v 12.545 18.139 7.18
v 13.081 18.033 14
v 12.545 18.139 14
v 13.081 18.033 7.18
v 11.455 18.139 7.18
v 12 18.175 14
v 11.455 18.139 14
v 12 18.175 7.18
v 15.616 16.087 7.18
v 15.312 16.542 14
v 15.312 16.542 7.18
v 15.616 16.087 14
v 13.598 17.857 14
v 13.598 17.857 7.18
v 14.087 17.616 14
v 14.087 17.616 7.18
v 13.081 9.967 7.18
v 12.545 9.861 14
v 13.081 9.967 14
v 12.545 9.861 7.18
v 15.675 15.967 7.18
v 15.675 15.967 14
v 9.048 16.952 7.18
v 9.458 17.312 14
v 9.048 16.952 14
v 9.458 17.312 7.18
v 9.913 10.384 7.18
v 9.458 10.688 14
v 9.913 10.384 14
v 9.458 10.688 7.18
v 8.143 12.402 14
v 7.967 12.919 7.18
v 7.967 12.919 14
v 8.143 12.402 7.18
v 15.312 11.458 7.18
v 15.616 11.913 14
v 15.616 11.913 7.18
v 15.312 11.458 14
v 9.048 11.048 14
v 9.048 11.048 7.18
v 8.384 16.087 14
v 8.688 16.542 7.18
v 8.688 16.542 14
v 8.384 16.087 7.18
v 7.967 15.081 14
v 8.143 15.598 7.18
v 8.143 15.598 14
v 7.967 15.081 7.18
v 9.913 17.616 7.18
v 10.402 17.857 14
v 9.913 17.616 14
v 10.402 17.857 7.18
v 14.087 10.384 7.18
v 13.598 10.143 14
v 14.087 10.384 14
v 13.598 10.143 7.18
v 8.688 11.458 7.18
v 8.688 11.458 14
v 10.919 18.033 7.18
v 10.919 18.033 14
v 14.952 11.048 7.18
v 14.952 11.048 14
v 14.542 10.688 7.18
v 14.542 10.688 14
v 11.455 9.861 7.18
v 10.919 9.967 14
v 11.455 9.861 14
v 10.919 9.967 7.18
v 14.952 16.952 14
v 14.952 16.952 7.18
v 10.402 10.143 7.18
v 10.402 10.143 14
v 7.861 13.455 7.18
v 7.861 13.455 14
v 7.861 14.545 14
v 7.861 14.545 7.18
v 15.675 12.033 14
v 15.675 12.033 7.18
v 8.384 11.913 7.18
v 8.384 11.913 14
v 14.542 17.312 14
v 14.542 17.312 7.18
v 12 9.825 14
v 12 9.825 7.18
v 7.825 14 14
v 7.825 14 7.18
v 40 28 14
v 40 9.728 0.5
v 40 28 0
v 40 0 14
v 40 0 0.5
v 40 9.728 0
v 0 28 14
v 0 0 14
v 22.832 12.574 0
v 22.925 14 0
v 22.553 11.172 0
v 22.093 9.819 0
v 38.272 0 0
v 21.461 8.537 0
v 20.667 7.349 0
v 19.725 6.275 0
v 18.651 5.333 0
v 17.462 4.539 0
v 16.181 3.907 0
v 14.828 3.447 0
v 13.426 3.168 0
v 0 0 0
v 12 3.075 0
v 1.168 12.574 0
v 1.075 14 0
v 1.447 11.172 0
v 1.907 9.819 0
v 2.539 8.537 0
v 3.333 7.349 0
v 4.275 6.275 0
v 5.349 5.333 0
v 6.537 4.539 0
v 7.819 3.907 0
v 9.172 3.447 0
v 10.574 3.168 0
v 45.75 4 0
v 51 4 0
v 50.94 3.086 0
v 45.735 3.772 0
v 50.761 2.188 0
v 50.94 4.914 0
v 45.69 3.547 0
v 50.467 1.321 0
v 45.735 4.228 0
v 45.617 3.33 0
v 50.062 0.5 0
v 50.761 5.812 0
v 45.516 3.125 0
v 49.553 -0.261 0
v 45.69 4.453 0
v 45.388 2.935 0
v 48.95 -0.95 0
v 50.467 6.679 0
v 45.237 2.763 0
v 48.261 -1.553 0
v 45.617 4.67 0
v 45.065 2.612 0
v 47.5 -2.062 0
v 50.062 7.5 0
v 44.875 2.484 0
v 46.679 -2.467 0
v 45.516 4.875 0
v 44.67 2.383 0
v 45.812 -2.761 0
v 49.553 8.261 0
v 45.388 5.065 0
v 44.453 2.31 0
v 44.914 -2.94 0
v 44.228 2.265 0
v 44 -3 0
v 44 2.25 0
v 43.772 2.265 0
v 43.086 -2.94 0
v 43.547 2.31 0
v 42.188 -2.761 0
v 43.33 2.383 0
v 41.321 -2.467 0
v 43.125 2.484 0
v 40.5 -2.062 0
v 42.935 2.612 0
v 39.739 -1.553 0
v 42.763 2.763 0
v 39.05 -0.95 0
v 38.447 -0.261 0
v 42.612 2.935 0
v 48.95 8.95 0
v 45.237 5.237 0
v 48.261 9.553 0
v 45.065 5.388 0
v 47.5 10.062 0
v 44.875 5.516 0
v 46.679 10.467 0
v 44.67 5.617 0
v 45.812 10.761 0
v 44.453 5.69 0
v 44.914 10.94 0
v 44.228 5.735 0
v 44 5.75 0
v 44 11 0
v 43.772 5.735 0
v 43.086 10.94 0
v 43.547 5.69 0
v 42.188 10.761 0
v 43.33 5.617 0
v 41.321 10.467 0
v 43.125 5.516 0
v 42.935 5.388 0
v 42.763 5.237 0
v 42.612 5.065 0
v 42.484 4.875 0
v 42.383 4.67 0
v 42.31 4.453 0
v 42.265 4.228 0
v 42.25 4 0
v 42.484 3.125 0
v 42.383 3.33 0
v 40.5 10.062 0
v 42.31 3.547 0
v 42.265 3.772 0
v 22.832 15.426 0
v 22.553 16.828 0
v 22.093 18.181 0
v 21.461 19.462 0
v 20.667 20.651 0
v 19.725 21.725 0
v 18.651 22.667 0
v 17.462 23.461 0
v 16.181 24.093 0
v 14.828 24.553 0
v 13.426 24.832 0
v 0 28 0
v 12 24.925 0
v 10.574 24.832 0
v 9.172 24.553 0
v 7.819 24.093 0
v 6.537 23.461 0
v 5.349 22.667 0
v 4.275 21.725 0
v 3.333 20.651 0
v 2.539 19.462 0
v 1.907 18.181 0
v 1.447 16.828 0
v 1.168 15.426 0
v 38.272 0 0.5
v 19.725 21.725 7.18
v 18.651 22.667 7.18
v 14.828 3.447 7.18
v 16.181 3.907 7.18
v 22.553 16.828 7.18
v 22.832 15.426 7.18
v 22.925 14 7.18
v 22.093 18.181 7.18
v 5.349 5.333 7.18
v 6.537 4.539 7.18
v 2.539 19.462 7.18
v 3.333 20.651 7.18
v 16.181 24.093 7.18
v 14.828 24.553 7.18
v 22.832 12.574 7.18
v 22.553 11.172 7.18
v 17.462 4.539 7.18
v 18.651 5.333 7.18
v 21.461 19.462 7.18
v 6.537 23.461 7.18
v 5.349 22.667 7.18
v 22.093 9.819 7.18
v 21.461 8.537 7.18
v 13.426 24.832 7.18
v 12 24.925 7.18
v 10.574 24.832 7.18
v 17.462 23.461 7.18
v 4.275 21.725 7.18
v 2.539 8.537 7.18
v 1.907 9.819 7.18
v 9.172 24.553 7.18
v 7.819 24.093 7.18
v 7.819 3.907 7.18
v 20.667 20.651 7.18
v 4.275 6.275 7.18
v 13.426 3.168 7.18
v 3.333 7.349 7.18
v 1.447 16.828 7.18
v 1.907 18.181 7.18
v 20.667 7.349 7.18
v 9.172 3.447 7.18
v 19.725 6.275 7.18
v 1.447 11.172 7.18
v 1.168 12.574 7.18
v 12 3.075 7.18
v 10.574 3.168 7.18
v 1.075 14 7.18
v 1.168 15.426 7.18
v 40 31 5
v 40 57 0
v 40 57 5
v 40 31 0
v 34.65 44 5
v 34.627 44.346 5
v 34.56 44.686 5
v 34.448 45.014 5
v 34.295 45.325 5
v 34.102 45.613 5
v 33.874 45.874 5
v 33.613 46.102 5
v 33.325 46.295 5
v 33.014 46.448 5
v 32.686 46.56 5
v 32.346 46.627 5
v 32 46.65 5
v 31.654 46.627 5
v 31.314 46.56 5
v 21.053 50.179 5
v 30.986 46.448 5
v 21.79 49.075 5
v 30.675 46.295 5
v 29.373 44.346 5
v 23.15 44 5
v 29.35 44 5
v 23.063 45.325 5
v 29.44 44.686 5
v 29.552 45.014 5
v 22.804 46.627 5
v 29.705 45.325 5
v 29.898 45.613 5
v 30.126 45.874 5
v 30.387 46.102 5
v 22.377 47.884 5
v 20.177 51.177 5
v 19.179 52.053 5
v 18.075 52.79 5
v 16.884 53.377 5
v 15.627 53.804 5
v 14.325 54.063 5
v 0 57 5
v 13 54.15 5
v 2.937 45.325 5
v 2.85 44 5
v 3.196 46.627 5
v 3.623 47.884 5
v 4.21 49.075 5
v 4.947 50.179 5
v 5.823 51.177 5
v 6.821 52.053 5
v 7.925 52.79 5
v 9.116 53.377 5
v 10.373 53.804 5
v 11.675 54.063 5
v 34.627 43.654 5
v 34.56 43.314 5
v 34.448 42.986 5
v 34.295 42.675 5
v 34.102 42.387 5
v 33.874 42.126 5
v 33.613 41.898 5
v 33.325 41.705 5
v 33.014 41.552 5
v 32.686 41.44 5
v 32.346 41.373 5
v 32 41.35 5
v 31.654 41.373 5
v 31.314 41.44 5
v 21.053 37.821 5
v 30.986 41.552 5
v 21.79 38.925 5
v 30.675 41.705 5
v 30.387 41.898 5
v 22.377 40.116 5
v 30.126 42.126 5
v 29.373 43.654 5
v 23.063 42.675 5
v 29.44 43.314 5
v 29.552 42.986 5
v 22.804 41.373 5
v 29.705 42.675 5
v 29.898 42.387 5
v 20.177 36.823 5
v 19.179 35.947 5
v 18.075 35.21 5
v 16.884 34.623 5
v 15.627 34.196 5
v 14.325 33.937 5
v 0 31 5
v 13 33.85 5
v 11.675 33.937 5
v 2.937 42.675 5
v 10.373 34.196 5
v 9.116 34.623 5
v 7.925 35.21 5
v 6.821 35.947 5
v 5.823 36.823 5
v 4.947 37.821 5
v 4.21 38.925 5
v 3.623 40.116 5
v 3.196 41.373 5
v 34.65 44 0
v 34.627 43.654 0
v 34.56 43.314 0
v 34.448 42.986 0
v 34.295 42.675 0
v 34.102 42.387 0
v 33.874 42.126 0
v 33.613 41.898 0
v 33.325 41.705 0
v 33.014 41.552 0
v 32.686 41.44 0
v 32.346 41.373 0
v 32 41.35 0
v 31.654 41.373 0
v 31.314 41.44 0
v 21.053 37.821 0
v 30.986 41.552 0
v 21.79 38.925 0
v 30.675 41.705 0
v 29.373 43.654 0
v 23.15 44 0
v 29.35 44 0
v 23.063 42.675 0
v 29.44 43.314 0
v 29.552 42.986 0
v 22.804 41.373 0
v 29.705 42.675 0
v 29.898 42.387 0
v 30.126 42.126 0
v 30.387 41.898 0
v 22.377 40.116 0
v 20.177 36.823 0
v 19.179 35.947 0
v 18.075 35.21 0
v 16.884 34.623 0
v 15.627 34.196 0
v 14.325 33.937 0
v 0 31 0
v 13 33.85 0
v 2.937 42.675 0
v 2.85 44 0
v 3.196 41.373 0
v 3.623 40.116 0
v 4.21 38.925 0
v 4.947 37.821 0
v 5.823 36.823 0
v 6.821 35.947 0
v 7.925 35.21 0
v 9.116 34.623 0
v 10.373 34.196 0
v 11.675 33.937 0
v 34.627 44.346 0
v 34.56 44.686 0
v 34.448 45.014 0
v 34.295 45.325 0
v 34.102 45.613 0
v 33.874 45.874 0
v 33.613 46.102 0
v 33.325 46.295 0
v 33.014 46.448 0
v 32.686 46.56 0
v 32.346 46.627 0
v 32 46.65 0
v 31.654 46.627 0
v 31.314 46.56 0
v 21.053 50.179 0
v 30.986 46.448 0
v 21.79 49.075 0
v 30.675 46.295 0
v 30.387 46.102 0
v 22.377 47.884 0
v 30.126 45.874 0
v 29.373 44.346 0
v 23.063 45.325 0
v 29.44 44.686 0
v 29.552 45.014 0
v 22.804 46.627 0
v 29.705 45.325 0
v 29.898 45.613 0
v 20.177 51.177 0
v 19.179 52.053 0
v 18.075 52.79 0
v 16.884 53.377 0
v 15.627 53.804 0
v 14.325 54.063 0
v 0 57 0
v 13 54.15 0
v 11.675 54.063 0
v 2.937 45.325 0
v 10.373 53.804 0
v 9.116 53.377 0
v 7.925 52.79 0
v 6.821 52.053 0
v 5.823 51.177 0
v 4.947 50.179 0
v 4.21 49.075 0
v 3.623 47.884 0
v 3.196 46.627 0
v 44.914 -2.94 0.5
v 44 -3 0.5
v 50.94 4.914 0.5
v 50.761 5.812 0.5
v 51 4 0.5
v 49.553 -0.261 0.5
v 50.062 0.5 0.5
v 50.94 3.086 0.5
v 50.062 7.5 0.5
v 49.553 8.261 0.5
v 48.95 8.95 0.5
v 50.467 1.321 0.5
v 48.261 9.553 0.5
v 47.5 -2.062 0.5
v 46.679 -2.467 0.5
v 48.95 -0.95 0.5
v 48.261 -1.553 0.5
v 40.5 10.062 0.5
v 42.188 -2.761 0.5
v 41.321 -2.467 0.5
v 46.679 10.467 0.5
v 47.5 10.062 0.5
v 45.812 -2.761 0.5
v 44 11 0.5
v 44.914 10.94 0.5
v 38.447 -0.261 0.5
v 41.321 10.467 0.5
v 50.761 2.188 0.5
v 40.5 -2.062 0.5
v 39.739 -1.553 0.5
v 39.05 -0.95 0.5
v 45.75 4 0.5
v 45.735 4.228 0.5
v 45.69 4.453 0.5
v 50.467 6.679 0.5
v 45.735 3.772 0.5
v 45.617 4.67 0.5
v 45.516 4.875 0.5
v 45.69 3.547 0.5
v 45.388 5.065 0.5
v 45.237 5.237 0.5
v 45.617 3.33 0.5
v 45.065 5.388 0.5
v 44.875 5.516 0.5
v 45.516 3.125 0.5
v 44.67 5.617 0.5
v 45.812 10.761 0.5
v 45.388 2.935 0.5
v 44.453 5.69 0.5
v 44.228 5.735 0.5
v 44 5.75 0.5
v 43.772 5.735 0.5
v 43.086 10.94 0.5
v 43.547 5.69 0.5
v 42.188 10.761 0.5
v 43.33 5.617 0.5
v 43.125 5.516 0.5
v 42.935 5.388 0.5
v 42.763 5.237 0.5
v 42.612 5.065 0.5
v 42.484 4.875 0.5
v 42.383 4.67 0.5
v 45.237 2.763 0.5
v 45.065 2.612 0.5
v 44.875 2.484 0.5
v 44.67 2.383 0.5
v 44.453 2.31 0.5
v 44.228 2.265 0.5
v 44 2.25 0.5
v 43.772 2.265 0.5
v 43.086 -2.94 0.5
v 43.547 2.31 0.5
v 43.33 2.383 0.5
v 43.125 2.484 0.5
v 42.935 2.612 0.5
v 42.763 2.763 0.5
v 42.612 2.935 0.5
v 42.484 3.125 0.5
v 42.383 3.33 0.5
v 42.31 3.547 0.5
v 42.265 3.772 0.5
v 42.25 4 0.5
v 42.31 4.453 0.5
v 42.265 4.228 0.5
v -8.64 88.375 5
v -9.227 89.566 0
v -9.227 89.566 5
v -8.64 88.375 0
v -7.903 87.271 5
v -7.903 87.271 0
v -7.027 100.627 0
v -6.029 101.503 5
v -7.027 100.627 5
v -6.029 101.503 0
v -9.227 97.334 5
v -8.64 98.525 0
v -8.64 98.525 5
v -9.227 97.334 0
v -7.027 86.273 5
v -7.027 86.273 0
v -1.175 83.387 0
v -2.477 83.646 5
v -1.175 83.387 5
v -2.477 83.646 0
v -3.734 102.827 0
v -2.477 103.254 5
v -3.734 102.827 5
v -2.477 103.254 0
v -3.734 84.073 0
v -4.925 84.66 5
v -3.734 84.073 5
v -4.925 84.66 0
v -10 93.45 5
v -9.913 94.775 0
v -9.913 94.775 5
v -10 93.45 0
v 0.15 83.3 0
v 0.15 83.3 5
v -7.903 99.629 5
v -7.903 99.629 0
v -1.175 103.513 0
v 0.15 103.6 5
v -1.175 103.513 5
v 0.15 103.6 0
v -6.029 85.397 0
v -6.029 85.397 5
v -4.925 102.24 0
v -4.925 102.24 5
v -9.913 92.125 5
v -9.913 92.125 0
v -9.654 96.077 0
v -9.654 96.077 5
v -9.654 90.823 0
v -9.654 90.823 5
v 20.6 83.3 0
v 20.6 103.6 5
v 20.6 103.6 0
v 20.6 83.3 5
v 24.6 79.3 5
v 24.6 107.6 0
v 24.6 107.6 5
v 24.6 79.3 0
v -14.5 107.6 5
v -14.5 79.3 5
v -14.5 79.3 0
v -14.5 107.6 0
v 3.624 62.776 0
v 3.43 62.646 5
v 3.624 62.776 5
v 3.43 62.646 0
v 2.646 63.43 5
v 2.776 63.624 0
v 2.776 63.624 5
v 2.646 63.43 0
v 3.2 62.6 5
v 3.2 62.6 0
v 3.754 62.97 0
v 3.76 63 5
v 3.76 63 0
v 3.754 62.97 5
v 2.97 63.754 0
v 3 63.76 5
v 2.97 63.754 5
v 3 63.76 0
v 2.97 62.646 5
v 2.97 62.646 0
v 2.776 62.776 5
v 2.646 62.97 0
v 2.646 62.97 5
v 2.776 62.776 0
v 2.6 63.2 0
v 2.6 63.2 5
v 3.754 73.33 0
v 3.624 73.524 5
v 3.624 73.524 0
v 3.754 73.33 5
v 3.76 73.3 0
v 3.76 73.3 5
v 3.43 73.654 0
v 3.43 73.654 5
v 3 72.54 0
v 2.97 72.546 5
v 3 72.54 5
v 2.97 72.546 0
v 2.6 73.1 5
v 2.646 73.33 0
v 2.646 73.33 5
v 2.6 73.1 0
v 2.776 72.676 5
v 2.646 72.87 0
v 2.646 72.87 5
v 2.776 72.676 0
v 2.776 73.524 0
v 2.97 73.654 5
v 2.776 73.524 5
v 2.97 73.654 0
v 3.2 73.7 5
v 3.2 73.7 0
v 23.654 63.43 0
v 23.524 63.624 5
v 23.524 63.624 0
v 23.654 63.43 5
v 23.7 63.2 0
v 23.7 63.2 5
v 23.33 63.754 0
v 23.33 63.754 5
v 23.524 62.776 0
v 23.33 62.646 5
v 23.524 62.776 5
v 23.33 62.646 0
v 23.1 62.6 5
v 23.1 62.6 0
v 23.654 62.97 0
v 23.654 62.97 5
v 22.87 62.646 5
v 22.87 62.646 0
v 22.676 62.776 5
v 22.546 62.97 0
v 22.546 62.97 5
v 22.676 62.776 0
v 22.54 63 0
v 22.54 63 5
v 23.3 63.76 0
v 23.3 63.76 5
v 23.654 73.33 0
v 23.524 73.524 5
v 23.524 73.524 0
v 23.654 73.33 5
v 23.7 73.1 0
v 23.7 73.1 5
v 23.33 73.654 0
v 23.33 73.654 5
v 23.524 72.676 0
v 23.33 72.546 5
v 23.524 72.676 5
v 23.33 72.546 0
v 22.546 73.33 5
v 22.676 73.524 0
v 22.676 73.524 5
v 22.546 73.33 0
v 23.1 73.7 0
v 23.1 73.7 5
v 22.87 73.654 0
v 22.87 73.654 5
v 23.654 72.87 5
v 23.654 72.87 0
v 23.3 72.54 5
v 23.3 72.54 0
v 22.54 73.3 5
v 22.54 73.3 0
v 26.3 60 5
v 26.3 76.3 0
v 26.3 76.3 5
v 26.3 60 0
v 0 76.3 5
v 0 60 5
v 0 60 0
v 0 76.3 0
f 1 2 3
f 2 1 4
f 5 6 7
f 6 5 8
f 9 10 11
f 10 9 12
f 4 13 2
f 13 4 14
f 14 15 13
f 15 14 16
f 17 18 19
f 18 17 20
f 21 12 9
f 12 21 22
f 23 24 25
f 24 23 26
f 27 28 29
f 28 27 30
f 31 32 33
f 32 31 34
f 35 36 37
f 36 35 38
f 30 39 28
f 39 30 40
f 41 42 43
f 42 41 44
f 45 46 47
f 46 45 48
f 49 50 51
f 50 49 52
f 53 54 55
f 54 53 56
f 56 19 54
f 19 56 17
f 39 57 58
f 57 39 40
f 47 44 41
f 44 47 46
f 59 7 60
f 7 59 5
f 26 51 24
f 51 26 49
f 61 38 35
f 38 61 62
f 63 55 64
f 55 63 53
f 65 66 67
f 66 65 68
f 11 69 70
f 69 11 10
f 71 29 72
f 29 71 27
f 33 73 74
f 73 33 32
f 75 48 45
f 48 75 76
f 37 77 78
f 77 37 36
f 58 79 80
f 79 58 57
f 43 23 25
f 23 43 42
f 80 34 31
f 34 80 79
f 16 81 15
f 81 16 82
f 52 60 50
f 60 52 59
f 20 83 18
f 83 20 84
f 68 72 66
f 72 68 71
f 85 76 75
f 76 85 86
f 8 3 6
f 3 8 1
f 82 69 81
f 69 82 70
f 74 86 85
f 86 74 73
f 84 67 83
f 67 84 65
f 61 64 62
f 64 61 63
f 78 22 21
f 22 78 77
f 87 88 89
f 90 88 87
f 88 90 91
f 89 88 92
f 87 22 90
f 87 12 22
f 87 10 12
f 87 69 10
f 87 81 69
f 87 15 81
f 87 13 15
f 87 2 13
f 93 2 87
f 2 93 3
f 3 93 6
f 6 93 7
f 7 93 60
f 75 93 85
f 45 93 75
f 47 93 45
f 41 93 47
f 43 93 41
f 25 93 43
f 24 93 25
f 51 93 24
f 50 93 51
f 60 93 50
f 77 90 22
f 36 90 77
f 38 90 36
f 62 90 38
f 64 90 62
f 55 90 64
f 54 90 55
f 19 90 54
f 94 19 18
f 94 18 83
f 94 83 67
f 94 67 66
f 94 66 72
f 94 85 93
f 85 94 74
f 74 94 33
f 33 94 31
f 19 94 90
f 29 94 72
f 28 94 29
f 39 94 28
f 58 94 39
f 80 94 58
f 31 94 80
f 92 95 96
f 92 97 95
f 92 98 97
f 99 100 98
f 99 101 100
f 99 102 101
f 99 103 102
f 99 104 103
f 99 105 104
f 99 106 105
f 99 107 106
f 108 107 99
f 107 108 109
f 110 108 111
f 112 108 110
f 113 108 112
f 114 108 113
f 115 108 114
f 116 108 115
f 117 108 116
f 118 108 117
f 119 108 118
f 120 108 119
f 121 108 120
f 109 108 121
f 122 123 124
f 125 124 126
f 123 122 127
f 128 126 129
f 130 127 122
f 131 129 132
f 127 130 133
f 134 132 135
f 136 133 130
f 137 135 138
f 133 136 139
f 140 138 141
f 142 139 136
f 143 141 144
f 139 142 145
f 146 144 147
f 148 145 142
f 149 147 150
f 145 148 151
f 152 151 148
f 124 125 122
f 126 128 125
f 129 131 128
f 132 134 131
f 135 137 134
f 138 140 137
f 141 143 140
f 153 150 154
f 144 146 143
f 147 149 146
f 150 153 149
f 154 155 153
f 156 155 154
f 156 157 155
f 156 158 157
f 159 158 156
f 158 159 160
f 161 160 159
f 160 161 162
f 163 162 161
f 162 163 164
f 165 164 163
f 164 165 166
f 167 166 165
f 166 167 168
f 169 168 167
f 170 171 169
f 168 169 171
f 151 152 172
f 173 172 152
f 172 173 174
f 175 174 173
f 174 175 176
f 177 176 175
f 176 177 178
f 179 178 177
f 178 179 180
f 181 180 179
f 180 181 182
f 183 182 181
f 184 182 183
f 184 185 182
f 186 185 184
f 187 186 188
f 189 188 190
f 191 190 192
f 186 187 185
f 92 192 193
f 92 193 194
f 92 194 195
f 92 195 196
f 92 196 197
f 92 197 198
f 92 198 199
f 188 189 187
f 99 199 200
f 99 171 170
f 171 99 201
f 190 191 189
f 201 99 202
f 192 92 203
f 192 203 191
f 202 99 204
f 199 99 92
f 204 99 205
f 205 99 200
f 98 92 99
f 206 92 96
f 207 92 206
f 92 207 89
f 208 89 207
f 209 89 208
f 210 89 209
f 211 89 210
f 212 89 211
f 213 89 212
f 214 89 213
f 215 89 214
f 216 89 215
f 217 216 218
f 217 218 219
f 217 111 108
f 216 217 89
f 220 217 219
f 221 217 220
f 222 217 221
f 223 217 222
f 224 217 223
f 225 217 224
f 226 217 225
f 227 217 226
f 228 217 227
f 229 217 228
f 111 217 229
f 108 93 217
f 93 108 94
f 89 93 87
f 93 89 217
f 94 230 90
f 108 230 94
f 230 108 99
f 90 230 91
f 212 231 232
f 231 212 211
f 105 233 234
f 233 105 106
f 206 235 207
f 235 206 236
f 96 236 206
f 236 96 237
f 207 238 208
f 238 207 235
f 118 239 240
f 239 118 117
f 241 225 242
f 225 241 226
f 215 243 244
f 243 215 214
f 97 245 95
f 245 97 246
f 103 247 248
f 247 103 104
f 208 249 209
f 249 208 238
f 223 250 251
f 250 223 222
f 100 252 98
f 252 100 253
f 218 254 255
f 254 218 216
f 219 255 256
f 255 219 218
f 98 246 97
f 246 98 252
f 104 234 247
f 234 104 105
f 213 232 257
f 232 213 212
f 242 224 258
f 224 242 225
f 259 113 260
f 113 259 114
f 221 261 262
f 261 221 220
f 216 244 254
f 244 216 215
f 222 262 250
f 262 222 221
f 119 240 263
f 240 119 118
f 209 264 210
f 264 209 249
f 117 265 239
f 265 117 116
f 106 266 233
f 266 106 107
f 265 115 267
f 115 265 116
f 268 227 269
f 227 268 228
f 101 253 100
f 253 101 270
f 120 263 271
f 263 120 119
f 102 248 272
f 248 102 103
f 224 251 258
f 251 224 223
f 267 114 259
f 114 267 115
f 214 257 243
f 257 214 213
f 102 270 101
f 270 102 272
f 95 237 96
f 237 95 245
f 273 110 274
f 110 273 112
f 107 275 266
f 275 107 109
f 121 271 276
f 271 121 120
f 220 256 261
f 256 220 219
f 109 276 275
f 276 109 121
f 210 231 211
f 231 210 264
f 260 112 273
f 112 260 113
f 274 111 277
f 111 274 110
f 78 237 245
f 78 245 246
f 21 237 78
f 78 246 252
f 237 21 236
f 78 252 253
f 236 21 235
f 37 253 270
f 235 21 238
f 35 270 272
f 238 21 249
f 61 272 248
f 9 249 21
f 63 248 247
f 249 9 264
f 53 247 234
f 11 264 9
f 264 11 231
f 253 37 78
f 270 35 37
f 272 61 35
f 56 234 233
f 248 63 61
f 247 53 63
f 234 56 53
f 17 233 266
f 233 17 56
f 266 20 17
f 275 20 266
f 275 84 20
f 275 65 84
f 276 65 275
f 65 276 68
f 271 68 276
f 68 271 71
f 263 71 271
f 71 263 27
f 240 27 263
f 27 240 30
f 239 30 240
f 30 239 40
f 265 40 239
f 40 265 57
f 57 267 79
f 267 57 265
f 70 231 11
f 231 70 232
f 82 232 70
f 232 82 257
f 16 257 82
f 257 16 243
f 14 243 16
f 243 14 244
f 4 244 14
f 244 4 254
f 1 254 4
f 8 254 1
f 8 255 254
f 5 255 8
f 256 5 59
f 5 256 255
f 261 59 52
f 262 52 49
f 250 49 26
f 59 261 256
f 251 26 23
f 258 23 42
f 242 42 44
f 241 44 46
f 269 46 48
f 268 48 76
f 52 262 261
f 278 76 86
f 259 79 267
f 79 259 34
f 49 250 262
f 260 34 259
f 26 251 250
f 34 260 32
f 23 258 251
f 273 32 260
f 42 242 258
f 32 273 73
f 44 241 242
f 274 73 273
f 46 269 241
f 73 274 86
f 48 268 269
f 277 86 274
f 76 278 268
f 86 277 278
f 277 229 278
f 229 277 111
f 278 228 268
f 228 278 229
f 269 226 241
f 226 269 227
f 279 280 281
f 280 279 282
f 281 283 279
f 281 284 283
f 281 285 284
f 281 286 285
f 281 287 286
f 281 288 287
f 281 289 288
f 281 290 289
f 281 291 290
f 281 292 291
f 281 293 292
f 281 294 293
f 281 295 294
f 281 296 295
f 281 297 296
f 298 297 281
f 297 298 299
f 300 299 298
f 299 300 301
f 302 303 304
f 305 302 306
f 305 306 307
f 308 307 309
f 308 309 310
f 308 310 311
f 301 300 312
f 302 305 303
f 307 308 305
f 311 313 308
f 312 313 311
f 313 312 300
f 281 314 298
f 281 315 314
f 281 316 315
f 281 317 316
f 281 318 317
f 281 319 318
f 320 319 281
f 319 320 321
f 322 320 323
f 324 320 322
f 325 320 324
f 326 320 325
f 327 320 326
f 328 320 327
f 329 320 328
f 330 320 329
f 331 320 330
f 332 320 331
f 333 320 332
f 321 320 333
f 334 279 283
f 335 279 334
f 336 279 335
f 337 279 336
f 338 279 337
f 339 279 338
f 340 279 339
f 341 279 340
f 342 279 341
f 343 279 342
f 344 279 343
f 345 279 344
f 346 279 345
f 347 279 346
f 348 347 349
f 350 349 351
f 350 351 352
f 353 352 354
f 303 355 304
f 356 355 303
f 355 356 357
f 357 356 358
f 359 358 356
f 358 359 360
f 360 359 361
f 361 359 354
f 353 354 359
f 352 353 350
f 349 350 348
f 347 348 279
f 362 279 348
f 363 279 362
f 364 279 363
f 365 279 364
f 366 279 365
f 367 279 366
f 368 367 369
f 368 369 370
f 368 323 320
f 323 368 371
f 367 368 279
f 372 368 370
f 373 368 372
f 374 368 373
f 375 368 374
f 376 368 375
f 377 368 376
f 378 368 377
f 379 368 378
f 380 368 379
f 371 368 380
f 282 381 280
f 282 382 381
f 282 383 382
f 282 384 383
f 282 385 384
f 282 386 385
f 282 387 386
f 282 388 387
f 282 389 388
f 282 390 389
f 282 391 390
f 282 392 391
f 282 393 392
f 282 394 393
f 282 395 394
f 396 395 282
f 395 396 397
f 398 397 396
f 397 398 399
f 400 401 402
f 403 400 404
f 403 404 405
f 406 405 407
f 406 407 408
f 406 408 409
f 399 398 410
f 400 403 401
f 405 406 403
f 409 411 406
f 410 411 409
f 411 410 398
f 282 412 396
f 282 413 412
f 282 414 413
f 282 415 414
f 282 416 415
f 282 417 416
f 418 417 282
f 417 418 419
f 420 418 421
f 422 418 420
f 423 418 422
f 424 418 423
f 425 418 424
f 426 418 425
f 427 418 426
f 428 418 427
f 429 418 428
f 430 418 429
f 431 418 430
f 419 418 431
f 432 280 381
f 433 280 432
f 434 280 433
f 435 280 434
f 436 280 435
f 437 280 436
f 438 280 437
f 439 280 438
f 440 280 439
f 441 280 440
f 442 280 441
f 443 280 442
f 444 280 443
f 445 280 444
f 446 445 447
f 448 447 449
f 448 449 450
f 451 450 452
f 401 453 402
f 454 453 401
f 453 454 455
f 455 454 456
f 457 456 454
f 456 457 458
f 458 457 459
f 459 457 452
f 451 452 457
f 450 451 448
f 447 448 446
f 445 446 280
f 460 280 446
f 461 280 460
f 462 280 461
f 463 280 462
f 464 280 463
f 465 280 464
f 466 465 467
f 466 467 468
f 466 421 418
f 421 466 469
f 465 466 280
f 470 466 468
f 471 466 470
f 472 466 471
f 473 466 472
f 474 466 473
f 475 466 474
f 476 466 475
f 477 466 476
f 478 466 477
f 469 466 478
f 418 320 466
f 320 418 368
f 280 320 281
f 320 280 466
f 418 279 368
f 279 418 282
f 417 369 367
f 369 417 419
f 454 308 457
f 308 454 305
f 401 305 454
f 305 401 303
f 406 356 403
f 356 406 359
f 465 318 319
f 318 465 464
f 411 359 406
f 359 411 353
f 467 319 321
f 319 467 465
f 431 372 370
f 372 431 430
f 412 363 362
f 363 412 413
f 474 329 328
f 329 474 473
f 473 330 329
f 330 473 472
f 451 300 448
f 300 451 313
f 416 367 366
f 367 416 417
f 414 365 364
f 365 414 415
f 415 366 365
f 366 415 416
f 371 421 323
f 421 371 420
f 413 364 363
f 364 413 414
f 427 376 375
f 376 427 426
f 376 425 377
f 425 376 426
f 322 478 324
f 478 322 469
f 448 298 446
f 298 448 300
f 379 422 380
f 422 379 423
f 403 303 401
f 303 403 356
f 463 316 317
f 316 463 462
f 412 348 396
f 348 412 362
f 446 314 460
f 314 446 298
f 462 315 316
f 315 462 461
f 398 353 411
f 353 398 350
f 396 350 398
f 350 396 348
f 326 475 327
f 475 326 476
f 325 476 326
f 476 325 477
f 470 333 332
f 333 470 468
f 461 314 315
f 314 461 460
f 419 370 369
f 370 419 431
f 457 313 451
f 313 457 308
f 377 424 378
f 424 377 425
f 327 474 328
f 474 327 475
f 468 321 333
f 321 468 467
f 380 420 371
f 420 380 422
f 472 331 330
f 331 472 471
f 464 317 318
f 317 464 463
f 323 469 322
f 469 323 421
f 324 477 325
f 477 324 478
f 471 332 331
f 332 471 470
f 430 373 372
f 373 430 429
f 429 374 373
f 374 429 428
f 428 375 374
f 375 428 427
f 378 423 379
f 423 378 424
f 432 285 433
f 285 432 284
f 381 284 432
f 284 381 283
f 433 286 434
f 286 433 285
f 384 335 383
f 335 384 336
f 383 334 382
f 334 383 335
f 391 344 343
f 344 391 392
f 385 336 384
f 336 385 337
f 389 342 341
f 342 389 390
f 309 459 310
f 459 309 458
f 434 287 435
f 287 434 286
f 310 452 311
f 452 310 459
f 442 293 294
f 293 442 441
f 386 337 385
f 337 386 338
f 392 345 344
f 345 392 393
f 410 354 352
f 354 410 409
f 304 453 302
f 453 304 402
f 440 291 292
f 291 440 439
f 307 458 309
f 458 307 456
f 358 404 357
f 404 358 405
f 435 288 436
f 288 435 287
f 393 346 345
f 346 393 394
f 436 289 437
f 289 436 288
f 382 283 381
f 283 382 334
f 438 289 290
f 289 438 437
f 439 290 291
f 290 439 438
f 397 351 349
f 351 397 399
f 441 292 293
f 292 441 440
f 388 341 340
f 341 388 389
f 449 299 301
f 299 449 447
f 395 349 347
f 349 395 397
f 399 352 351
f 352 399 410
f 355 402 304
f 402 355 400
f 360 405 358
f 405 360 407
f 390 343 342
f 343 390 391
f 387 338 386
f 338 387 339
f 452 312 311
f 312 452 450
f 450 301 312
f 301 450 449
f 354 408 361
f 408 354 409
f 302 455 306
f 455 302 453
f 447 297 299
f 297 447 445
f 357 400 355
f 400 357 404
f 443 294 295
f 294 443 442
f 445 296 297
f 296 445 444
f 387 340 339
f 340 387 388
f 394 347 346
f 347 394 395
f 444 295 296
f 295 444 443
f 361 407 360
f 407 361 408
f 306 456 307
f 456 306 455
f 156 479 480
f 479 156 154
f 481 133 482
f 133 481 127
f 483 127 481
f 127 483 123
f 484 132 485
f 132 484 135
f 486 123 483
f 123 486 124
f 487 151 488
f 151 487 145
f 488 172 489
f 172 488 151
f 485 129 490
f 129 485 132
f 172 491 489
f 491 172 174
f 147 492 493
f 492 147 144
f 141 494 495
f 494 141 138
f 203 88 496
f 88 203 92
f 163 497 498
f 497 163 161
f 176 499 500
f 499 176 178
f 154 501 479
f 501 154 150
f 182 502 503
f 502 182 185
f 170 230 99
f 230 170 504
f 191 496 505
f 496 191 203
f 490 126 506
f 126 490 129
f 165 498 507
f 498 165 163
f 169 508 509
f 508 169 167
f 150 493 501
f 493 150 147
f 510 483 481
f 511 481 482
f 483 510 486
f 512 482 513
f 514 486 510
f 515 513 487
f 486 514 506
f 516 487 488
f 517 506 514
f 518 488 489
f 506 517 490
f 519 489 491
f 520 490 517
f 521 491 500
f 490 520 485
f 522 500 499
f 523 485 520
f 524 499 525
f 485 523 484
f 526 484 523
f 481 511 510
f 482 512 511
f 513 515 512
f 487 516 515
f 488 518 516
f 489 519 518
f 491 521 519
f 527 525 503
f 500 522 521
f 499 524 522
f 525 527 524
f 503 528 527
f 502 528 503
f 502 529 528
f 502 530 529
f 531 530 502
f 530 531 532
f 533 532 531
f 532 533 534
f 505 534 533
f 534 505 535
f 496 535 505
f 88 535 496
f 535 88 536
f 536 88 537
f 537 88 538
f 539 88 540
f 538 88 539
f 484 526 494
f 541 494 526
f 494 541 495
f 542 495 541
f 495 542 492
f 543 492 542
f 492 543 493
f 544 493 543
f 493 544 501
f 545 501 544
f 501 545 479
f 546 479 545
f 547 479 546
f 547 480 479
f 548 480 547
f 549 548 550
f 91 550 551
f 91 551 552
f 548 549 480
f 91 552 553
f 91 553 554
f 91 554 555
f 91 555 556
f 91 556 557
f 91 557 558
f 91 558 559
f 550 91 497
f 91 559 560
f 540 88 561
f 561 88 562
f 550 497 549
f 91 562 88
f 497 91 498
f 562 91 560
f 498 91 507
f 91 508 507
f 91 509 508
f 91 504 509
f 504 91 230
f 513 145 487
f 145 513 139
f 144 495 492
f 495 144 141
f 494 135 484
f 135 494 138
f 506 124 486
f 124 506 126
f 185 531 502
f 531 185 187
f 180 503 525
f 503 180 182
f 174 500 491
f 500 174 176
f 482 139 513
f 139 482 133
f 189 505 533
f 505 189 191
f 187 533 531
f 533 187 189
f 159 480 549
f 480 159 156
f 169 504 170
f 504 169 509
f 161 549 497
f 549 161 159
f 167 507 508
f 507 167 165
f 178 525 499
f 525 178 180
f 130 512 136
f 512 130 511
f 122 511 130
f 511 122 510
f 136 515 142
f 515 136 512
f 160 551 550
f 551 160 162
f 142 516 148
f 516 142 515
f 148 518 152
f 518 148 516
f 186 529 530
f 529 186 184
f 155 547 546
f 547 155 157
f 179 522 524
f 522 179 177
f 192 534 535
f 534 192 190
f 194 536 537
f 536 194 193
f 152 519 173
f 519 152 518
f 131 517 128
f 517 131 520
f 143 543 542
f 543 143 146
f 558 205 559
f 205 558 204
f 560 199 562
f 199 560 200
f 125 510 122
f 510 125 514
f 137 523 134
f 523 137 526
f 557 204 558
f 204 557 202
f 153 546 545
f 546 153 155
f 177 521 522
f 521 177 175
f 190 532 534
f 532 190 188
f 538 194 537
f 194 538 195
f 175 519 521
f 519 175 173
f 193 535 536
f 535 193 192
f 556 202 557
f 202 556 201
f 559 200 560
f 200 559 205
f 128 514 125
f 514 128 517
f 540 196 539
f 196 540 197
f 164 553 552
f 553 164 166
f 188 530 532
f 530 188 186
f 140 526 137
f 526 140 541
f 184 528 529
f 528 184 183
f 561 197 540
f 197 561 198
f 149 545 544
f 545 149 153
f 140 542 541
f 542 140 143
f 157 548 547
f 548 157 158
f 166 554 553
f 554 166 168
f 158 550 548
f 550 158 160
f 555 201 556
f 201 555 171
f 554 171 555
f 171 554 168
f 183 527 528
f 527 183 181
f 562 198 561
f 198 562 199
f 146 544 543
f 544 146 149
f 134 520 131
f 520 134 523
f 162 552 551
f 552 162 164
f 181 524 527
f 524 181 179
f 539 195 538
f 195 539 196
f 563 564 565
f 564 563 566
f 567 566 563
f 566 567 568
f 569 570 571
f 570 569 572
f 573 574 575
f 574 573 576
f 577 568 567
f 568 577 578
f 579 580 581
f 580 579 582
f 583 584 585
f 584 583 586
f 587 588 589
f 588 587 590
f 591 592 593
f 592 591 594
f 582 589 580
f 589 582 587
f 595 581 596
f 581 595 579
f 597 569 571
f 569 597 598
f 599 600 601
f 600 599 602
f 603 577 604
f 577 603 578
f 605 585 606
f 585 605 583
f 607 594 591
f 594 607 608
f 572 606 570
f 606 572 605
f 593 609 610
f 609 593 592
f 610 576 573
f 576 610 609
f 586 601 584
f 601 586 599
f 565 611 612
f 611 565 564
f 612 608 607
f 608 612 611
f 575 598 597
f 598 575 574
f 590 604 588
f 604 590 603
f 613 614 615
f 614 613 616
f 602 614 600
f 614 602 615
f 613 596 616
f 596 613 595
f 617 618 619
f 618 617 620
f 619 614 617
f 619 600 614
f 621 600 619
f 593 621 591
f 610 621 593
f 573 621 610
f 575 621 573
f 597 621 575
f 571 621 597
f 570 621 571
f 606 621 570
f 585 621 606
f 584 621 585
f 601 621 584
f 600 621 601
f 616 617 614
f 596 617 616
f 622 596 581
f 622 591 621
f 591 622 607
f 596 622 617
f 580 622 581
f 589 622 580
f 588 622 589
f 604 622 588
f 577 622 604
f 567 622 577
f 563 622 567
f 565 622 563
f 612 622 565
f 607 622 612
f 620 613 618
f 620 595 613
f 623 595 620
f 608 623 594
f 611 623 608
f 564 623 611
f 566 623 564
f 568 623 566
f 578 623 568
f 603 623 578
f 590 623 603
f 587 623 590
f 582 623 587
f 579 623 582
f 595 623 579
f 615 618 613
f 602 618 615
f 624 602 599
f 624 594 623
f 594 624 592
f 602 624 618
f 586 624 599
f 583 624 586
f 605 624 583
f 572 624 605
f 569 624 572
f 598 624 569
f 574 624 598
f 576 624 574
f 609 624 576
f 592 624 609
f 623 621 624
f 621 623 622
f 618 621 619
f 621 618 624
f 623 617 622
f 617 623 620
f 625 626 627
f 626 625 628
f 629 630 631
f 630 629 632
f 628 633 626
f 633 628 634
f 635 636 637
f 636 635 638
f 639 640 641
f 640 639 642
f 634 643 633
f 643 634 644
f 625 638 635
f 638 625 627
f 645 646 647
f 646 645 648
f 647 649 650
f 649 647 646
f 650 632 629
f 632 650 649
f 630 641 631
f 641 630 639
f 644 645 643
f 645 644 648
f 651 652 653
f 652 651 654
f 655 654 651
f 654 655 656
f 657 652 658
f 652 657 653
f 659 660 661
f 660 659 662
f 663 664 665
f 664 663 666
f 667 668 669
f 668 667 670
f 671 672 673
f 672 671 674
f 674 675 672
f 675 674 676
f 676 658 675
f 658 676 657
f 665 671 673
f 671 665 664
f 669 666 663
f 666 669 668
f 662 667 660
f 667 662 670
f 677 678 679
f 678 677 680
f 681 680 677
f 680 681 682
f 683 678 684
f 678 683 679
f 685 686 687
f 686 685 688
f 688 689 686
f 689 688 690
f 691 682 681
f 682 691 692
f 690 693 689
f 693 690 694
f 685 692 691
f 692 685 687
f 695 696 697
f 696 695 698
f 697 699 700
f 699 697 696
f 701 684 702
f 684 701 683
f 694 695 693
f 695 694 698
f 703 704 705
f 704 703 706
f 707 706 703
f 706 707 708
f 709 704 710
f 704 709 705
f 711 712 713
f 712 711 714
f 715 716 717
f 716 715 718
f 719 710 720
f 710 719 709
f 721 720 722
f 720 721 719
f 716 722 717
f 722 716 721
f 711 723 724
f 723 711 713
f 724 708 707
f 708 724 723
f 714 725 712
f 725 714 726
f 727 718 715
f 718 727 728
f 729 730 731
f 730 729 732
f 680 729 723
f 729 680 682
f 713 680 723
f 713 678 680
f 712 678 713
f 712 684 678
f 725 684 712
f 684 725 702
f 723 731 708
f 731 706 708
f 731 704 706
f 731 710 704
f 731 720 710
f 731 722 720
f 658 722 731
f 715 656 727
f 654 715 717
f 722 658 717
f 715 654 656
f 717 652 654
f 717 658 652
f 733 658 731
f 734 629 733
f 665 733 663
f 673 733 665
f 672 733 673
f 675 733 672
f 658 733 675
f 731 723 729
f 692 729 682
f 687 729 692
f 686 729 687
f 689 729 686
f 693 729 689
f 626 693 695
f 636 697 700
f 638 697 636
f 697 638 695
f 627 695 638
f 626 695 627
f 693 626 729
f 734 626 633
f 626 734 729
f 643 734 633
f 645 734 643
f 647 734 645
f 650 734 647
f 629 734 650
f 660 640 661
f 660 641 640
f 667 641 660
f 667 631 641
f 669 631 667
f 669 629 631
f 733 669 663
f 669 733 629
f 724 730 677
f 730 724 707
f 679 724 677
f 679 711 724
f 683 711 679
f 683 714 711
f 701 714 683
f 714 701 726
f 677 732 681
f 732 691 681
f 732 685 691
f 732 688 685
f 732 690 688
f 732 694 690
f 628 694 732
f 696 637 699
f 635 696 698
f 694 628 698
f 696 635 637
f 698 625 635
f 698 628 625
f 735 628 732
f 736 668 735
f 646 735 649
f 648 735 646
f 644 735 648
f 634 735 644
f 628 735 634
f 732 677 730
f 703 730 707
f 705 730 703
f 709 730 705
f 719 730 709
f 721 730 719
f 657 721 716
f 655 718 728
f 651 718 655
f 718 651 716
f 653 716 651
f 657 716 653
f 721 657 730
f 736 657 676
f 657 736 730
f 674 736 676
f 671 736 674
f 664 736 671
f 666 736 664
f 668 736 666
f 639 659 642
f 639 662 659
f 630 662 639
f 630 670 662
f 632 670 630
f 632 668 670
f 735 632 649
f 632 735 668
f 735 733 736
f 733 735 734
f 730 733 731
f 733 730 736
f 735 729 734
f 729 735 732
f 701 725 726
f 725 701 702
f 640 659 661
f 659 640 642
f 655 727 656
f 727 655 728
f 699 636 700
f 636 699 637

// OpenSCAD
// Gen-CT — fit coupon: O20/O5 THROUGH pockets at carrier thickness (test on a steel offcut), 608 seat,
// D-flat bore, gap shim, and one bobbin-bay slice (bobbin footprint + bay_clear) to test former fit.
include <parameters.scad>;
$fn = 48;
// D-flat keyed bore: flat faces +X (angle 0 = magnet pocket 0 = index notch)
module dflat_bore(h) {
    intersection() {
        cylinder(d=shaft_bore, h=h);
        translate([-shaft_bore, -shaft_bore, 0]) cube([shaft_bore + dflat_x, 2*shaft_bore, h]);
    }
}
module sector_2d(r_in, r_out, ang) {
    polygon([
        for (a = [-ang/2 : ang/24 : ang/2]) [r_in*cos(a), r_in*sin(a)],
        for (a = [ang/2 : -ang/24 : -ang/2]) [r_out*cos(a), r_out*sin(a)]
    ]);
}
module footprint_2d() { offset(r=wall) sector_2d(coil_id_r, coil_od_r, span_deg); }
module hub_2d()       { offset(delta=-coil_core_inset) sector_2d(coil_id_r, coil_od_r, span_deg); }

block_w = 40; block_d = 28; block_h = 14;
difference() {
    cube([block_w, block_d, block_h]);
    translate([12, block_d/2, -0.02]) cylinder(d=bearing_d, h=bearing_h);
    translate([12, block_d/2, -0.1]) dflat_bore(block_h + 1);
}
translate([0, block_d + 3, 0]) difference() {
    cube([40, 26, carrier_thick]);
    translate([13, 13, -0.1]) cylinder(d=large_pocket_d, h=carrier_thick + 0.2);
    translate([32, 13, -0.1]) cylinder(d=small_pocket_d, h=carrier_thick + 0.2);
}
translate([block_w + 4, 4, 0])
    difference() {
        cylinder(d=spacer_pad_od, h=gap_spacer_h);
        translate([0, 0, -0.1]) cylinder(d=spacer_pad_id, h=gap_spacer_h + 0.2);
    }
// KEYHOLE pole pocket test (2026-10-18): O20 disc pocket + N42 20x10x5 block pocket merged (hull), as on the arcs.
// Drop a disc and a block in: they must push each other onto the two far walls and sit flat. Block pocket has corner reliefs.
translate([0, block_d + 3 + 26 + 3 + block_radial + block_pocket_clear + 6 + 3 + max(block_tangential, large_pocket_d) / 2 + 4, 0]) difference() {
    translate([-14.5, -(max(block_tangential, large_pocket_d) / 2 + 4), 0]) cube([14.5 + abs(block_R_list[0] - R_large) + block_radial / 2 + 4, max(block_tangential, large_pocket_d) + 8, carrier_thick]);
    translate([0, 0, -0.1]) {
        translate([disc_pocket_shift * sign(block_R_list[0] - R_large), 0, 0]) cylinder(d=large_pocket_d, h=carrier_thick + 0.2);
        translate([disc_pocket_shift * sign(block_R_list[0] - R_large), -(block_tangential + block_pocket_clear)/2, 0])
            cube([abs(block_R_list[0] - R_large) - abs(block_pocket_shift) + (block_radial + block_pocket_clear)/2 - disc_pocket_shift * sign(block_R_list[0] - R_large), block_tangential + block_pocket_clear, carrier_thick + 0.2]);
    }
}
// N42 20x10x5 BLOCK through-pocket test (block + block_pocket_clear, 1.2 mm corner reliefs), 2026-10-16
translate([0, block_d + 3 + 26 + 3, 0]) difference() {
    cube([block_tangential + block_pocket_clear + 6, block_radial + block_pocket_clear + 6, carrier_thick]);
    translate([3, 3, -0.1]) cube([block_tangential + block_pocket_clear, block_radial + block_pocket_clear, carrier_thick + 0.2]);
    for (x = [3.2, 3 + block_tangential + block_pocket_clear - 0.2], y = [3.2, 3 + block_radial + block_pocket_clear - 0.2])
        translate([x, y, -0.1]) cylinder(d=1.2, h=carrier_thick + 0.2, $fn=16);
}
